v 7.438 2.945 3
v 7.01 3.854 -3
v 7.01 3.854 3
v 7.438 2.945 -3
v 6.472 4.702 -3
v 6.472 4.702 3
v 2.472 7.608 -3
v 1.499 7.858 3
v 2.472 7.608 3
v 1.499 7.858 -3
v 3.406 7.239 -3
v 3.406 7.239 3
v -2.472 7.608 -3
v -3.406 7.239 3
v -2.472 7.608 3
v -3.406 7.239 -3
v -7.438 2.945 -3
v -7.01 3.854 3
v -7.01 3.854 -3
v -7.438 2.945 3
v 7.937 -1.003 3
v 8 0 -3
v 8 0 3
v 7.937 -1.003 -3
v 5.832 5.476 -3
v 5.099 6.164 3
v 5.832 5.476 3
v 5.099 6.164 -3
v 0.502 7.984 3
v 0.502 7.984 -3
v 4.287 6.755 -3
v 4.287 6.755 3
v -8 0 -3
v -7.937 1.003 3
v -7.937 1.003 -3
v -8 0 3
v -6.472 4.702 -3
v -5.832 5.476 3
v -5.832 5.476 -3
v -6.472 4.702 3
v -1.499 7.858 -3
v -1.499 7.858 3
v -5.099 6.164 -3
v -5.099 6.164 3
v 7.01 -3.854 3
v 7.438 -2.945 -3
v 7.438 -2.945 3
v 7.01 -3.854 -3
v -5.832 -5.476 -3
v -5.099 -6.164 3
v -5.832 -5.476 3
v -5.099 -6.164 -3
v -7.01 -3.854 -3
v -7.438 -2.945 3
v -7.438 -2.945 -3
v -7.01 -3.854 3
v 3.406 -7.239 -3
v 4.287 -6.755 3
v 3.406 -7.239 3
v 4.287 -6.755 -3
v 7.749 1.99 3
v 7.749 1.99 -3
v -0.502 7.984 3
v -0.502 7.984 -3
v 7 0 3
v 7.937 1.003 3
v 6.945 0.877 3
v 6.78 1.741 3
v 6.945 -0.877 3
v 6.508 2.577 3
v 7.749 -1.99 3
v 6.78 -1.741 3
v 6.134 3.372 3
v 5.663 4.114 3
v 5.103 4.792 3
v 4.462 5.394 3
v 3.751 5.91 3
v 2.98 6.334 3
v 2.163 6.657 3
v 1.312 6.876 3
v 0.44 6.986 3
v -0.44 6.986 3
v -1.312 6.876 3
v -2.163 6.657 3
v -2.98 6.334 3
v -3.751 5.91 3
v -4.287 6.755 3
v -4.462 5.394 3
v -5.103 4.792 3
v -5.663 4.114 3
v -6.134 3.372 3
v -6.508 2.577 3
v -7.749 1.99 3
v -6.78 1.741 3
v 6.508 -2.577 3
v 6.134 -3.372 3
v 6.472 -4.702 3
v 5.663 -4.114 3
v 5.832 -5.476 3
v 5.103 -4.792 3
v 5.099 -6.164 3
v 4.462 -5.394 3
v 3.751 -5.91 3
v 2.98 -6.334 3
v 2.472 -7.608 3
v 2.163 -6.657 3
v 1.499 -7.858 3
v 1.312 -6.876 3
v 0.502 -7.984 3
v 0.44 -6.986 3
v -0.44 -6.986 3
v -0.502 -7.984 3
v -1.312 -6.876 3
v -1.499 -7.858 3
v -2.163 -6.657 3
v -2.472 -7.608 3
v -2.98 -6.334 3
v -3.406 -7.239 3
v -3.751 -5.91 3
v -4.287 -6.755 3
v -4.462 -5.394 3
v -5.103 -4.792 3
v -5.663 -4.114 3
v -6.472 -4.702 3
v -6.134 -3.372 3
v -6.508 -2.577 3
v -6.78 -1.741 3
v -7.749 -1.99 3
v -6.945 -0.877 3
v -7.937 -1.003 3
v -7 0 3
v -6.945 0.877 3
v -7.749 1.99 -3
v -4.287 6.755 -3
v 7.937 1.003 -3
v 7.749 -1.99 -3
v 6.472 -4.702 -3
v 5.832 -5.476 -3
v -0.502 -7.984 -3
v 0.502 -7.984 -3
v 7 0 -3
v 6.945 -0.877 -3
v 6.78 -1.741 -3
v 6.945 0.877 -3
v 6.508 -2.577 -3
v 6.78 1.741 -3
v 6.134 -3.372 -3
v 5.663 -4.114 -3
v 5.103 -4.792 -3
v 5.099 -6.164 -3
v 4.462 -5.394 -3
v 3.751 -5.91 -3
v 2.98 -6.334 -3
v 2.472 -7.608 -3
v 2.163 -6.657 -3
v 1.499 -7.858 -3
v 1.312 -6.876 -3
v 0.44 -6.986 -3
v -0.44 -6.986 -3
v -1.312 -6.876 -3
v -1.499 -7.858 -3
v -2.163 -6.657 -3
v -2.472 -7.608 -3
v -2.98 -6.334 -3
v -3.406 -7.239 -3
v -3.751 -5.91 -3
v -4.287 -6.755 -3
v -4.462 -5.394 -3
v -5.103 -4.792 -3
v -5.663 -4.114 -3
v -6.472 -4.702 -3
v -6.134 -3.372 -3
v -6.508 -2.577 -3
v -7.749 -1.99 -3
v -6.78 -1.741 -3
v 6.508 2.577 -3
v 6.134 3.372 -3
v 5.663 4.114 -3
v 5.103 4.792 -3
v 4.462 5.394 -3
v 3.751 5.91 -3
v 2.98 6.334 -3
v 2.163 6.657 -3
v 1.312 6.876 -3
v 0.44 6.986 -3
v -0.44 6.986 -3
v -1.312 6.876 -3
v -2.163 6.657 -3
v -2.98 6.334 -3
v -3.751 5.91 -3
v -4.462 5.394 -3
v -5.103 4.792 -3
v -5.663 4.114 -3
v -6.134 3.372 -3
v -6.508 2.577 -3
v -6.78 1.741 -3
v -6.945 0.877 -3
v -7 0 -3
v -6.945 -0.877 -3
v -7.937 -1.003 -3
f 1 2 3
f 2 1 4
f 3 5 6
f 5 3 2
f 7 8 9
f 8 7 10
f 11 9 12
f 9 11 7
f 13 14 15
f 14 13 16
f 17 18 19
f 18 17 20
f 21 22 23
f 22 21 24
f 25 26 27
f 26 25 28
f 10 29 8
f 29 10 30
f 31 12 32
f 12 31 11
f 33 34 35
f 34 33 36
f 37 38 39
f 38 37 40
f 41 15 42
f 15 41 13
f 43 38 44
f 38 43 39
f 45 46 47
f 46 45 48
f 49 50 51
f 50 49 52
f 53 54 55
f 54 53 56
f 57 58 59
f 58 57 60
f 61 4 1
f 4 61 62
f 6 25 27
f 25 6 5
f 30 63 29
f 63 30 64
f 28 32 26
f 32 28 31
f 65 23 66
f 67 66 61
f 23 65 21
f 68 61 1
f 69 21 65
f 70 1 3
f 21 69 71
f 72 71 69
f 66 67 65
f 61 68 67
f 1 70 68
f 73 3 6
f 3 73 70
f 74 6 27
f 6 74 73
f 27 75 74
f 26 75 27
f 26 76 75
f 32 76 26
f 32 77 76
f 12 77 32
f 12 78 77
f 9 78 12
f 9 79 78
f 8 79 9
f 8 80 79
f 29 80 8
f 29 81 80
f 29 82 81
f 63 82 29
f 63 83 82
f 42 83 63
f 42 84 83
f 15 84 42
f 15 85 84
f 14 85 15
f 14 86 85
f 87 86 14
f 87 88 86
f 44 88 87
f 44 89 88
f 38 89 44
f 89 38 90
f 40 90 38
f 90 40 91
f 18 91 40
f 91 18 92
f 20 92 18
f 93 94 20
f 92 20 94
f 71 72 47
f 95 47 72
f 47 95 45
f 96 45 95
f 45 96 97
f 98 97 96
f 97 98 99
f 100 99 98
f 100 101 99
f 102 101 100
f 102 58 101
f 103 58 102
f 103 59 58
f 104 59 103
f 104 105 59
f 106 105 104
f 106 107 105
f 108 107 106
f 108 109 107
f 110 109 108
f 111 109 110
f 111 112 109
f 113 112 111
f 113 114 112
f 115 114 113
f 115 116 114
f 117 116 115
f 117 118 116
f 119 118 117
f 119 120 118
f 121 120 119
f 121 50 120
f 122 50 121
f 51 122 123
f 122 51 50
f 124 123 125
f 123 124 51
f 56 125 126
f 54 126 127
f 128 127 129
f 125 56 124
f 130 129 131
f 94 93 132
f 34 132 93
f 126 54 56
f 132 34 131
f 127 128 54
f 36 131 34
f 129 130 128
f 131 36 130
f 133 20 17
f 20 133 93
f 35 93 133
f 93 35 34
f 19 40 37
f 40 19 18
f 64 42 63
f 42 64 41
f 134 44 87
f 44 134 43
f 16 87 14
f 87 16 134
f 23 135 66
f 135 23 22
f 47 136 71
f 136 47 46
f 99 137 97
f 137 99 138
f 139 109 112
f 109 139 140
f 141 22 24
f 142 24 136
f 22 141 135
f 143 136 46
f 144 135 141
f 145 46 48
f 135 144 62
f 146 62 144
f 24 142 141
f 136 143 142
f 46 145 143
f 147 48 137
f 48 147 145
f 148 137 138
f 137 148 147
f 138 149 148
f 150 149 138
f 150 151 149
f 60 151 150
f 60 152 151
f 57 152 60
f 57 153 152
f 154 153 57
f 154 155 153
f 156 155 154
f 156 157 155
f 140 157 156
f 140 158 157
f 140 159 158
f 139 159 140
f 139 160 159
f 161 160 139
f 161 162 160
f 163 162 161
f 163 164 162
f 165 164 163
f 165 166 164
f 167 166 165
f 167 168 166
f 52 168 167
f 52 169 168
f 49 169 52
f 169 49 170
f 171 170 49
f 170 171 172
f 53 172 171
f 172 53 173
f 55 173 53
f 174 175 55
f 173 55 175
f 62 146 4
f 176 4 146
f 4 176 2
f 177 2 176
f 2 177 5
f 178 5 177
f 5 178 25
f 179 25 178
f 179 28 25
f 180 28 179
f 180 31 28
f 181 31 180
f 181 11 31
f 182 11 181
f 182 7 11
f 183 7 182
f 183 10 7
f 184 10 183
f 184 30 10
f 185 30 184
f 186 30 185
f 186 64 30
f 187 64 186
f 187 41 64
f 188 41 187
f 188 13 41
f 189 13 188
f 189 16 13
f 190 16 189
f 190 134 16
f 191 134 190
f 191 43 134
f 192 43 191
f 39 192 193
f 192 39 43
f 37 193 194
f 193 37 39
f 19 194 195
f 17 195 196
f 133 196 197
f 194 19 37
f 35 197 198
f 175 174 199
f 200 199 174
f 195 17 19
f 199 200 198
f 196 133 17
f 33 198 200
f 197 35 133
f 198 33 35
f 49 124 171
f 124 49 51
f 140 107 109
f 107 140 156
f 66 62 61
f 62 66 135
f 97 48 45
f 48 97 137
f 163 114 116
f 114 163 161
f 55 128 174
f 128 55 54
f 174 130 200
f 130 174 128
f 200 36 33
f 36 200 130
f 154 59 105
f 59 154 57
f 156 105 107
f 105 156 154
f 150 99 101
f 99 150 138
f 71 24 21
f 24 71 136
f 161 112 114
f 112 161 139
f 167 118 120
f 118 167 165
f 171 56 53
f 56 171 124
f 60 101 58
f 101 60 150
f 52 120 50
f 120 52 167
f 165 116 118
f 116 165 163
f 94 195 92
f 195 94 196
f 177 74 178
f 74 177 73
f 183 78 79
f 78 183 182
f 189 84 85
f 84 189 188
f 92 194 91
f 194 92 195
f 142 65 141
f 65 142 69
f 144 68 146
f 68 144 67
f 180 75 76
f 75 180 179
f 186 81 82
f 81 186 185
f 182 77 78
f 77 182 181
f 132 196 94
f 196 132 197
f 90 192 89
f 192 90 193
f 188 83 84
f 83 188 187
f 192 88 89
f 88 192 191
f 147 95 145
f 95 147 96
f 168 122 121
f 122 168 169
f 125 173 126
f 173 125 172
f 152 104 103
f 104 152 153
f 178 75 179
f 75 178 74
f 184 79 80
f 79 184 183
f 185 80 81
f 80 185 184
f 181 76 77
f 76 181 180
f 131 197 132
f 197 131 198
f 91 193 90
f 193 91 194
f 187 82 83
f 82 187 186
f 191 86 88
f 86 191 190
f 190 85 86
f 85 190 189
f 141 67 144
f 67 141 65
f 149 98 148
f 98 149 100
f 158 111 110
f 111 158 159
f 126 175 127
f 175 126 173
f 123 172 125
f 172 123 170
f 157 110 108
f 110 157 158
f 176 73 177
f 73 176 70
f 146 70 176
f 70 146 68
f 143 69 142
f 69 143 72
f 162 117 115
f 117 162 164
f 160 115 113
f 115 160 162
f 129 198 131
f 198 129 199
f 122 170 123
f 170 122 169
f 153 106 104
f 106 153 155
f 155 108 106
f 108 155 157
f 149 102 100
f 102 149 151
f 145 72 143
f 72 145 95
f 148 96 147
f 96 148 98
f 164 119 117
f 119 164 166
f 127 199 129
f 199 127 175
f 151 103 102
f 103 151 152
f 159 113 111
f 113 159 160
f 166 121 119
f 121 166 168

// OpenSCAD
$fn = 50;


difference() {
	union() {
		translate(v = [0, 0, -3.0000000000]) {
			cylinder(h = 6, r = 8.0000000000);
		}
	}
	union() {
		translate(v = [0, 0, -100.0000000000]) {
			cylinder(h = 200, r = 7);
		}
	}
}
